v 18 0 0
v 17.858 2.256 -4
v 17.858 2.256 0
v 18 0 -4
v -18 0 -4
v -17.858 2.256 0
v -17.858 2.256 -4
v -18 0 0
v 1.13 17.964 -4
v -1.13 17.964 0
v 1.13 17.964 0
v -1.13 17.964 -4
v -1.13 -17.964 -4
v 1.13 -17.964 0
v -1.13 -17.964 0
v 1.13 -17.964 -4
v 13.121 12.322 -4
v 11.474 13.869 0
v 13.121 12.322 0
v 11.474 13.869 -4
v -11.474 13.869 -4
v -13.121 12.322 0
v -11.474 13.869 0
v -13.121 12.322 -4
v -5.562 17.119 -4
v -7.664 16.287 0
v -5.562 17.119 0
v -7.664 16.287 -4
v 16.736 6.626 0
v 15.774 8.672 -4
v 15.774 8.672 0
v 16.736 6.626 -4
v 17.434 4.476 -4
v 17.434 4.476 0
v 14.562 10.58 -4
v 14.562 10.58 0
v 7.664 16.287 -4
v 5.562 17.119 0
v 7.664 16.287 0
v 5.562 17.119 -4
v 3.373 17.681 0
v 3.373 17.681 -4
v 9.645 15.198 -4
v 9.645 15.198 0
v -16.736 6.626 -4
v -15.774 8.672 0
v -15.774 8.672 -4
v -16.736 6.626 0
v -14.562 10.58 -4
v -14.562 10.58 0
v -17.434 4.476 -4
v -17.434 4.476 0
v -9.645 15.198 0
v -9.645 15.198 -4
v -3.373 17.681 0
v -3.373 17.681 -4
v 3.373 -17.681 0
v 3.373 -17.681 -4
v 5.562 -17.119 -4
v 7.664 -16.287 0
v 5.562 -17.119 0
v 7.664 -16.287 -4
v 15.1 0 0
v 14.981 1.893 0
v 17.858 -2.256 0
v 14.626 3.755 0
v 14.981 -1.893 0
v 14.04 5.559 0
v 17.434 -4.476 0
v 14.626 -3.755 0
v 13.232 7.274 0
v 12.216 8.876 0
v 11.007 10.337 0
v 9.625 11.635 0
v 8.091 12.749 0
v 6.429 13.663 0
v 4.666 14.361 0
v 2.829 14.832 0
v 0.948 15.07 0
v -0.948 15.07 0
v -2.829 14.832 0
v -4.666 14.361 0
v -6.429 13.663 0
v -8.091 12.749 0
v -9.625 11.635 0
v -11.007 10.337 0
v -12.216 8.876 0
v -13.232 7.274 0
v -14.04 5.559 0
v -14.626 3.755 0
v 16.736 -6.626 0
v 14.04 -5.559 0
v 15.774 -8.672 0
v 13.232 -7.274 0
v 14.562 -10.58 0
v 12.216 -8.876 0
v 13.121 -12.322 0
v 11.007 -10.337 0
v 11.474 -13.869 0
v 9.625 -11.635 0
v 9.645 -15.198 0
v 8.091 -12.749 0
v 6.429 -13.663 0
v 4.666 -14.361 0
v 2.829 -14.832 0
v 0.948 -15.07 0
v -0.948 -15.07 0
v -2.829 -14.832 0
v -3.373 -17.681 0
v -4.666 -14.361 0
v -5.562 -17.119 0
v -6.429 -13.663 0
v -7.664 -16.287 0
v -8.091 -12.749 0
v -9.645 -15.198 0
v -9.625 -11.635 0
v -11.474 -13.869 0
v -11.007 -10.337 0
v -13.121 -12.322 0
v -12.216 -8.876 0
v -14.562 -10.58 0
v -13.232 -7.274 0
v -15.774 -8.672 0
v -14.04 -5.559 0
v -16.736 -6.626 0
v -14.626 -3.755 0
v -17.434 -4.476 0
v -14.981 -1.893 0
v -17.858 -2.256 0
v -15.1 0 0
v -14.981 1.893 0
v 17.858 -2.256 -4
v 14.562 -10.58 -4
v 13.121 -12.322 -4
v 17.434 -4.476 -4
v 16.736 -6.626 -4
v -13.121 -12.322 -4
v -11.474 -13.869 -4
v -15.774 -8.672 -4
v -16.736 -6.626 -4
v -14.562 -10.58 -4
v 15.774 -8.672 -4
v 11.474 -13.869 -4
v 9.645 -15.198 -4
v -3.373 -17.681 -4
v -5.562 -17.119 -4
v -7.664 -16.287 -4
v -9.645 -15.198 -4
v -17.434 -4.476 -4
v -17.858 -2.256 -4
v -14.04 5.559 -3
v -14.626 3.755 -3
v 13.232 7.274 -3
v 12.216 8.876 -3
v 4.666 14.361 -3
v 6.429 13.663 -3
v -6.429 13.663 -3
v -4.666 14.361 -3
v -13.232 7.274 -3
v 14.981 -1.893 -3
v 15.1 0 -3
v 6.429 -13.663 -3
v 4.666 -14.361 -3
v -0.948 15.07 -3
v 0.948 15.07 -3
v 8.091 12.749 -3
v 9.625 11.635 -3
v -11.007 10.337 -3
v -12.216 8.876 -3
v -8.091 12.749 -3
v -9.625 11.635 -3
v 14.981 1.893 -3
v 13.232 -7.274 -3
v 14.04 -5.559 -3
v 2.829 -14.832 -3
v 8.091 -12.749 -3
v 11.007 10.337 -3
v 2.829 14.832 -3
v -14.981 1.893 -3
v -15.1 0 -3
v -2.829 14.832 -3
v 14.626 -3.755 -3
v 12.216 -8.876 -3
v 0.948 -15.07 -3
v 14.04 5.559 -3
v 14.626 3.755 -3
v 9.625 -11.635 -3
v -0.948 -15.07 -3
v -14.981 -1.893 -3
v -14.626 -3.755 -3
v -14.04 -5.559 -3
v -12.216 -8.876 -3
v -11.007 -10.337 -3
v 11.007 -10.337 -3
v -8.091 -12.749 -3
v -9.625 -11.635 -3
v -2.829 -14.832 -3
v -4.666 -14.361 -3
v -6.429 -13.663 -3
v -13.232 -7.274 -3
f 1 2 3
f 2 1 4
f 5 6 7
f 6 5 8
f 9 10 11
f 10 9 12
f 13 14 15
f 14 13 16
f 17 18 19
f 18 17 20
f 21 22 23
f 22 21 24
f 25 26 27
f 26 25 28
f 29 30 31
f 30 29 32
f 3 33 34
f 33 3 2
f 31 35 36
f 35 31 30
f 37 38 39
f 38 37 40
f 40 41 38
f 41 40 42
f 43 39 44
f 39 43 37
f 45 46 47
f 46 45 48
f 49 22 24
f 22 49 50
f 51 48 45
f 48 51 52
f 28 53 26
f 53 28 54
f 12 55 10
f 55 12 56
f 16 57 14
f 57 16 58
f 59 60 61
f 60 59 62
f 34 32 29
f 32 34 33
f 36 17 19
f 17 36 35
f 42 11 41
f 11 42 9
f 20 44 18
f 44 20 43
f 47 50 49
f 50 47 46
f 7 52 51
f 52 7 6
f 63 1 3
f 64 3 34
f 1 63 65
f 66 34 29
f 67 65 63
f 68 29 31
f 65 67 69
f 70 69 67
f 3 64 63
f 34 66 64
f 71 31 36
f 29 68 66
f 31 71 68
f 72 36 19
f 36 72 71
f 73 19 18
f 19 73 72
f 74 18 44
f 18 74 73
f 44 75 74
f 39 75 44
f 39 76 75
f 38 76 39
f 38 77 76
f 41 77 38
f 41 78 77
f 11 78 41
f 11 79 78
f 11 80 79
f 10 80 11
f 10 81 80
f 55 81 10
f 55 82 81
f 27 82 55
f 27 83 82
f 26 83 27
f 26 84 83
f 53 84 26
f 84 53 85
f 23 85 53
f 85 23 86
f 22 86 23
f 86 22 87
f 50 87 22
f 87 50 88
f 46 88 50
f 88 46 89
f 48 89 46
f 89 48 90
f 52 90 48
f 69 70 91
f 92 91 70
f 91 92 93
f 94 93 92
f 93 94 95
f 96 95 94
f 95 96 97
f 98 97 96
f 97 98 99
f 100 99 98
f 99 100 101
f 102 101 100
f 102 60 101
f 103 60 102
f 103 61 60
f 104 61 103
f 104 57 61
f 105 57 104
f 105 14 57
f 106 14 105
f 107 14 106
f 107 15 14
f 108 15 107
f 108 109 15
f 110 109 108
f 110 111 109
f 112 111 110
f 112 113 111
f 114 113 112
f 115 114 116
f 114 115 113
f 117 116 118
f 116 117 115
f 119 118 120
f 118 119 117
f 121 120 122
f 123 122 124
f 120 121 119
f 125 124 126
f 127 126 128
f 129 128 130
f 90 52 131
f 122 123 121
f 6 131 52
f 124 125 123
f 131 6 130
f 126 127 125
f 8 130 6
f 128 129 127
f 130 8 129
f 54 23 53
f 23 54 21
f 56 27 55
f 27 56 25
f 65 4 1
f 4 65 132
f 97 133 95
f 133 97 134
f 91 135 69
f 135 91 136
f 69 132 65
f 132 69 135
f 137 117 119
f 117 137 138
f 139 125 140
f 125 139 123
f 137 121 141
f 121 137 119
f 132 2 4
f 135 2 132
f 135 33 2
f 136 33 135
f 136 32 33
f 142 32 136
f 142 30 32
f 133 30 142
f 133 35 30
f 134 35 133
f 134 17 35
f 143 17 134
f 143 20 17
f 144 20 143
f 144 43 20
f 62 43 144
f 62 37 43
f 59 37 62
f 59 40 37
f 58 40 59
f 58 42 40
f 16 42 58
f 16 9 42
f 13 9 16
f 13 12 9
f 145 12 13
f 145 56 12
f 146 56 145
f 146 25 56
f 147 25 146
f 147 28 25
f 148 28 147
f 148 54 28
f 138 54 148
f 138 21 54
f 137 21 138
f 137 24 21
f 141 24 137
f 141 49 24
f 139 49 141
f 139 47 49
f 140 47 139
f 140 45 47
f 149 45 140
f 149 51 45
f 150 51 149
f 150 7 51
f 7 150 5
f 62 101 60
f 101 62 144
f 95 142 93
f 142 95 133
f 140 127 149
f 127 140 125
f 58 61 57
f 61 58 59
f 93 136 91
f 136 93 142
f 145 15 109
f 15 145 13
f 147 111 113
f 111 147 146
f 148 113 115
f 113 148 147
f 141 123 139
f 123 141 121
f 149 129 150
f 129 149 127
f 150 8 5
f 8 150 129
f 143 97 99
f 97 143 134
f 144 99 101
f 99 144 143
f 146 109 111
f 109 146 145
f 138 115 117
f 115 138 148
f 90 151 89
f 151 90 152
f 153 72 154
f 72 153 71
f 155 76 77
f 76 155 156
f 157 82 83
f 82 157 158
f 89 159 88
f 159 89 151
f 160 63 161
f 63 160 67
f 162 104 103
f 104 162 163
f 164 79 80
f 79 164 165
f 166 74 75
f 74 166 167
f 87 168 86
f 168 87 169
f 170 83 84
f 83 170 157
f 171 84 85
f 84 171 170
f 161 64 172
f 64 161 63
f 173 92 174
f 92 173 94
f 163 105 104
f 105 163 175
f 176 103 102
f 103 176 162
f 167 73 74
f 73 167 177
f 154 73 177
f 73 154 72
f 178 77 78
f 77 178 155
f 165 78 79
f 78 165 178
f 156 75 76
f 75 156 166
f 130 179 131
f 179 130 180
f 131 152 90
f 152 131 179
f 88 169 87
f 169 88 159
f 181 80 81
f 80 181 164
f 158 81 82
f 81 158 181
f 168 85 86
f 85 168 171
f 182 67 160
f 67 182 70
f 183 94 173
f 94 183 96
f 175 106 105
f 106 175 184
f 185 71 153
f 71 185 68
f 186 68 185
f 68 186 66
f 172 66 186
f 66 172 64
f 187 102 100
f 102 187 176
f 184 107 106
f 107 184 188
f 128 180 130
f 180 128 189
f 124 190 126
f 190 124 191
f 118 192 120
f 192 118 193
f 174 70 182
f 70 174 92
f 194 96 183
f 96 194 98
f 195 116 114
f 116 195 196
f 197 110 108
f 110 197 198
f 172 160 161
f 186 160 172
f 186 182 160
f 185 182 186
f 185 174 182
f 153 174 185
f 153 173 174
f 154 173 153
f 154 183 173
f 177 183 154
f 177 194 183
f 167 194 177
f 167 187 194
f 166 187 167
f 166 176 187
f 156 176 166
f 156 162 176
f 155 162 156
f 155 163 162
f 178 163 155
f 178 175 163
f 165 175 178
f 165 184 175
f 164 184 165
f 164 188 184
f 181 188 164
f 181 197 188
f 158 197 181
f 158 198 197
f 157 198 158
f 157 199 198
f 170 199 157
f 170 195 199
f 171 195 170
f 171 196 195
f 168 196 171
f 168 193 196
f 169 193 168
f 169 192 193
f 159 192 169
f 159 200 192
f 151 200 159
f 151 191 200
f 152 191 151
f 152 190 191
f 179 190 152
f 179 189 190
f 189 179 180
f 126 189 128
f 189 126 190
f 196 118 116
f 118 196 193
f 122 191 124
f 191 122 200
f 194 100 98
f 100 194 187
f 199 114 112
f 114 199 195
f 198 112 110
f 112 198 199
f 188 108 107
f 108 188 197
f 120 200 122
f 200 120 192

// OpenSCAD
$fn = 50;


difference() {
	union() {
		translate(v = [0, 0, -4.0000000000]) {
			cylinder(h = 4, r = 18.0000000000);
		}
	}
	union() {
		#translate(v = [0, 0, -3.0000000000]) {
			cylinder(h = 3, r = 15.1000000000);
		}
	}
}
